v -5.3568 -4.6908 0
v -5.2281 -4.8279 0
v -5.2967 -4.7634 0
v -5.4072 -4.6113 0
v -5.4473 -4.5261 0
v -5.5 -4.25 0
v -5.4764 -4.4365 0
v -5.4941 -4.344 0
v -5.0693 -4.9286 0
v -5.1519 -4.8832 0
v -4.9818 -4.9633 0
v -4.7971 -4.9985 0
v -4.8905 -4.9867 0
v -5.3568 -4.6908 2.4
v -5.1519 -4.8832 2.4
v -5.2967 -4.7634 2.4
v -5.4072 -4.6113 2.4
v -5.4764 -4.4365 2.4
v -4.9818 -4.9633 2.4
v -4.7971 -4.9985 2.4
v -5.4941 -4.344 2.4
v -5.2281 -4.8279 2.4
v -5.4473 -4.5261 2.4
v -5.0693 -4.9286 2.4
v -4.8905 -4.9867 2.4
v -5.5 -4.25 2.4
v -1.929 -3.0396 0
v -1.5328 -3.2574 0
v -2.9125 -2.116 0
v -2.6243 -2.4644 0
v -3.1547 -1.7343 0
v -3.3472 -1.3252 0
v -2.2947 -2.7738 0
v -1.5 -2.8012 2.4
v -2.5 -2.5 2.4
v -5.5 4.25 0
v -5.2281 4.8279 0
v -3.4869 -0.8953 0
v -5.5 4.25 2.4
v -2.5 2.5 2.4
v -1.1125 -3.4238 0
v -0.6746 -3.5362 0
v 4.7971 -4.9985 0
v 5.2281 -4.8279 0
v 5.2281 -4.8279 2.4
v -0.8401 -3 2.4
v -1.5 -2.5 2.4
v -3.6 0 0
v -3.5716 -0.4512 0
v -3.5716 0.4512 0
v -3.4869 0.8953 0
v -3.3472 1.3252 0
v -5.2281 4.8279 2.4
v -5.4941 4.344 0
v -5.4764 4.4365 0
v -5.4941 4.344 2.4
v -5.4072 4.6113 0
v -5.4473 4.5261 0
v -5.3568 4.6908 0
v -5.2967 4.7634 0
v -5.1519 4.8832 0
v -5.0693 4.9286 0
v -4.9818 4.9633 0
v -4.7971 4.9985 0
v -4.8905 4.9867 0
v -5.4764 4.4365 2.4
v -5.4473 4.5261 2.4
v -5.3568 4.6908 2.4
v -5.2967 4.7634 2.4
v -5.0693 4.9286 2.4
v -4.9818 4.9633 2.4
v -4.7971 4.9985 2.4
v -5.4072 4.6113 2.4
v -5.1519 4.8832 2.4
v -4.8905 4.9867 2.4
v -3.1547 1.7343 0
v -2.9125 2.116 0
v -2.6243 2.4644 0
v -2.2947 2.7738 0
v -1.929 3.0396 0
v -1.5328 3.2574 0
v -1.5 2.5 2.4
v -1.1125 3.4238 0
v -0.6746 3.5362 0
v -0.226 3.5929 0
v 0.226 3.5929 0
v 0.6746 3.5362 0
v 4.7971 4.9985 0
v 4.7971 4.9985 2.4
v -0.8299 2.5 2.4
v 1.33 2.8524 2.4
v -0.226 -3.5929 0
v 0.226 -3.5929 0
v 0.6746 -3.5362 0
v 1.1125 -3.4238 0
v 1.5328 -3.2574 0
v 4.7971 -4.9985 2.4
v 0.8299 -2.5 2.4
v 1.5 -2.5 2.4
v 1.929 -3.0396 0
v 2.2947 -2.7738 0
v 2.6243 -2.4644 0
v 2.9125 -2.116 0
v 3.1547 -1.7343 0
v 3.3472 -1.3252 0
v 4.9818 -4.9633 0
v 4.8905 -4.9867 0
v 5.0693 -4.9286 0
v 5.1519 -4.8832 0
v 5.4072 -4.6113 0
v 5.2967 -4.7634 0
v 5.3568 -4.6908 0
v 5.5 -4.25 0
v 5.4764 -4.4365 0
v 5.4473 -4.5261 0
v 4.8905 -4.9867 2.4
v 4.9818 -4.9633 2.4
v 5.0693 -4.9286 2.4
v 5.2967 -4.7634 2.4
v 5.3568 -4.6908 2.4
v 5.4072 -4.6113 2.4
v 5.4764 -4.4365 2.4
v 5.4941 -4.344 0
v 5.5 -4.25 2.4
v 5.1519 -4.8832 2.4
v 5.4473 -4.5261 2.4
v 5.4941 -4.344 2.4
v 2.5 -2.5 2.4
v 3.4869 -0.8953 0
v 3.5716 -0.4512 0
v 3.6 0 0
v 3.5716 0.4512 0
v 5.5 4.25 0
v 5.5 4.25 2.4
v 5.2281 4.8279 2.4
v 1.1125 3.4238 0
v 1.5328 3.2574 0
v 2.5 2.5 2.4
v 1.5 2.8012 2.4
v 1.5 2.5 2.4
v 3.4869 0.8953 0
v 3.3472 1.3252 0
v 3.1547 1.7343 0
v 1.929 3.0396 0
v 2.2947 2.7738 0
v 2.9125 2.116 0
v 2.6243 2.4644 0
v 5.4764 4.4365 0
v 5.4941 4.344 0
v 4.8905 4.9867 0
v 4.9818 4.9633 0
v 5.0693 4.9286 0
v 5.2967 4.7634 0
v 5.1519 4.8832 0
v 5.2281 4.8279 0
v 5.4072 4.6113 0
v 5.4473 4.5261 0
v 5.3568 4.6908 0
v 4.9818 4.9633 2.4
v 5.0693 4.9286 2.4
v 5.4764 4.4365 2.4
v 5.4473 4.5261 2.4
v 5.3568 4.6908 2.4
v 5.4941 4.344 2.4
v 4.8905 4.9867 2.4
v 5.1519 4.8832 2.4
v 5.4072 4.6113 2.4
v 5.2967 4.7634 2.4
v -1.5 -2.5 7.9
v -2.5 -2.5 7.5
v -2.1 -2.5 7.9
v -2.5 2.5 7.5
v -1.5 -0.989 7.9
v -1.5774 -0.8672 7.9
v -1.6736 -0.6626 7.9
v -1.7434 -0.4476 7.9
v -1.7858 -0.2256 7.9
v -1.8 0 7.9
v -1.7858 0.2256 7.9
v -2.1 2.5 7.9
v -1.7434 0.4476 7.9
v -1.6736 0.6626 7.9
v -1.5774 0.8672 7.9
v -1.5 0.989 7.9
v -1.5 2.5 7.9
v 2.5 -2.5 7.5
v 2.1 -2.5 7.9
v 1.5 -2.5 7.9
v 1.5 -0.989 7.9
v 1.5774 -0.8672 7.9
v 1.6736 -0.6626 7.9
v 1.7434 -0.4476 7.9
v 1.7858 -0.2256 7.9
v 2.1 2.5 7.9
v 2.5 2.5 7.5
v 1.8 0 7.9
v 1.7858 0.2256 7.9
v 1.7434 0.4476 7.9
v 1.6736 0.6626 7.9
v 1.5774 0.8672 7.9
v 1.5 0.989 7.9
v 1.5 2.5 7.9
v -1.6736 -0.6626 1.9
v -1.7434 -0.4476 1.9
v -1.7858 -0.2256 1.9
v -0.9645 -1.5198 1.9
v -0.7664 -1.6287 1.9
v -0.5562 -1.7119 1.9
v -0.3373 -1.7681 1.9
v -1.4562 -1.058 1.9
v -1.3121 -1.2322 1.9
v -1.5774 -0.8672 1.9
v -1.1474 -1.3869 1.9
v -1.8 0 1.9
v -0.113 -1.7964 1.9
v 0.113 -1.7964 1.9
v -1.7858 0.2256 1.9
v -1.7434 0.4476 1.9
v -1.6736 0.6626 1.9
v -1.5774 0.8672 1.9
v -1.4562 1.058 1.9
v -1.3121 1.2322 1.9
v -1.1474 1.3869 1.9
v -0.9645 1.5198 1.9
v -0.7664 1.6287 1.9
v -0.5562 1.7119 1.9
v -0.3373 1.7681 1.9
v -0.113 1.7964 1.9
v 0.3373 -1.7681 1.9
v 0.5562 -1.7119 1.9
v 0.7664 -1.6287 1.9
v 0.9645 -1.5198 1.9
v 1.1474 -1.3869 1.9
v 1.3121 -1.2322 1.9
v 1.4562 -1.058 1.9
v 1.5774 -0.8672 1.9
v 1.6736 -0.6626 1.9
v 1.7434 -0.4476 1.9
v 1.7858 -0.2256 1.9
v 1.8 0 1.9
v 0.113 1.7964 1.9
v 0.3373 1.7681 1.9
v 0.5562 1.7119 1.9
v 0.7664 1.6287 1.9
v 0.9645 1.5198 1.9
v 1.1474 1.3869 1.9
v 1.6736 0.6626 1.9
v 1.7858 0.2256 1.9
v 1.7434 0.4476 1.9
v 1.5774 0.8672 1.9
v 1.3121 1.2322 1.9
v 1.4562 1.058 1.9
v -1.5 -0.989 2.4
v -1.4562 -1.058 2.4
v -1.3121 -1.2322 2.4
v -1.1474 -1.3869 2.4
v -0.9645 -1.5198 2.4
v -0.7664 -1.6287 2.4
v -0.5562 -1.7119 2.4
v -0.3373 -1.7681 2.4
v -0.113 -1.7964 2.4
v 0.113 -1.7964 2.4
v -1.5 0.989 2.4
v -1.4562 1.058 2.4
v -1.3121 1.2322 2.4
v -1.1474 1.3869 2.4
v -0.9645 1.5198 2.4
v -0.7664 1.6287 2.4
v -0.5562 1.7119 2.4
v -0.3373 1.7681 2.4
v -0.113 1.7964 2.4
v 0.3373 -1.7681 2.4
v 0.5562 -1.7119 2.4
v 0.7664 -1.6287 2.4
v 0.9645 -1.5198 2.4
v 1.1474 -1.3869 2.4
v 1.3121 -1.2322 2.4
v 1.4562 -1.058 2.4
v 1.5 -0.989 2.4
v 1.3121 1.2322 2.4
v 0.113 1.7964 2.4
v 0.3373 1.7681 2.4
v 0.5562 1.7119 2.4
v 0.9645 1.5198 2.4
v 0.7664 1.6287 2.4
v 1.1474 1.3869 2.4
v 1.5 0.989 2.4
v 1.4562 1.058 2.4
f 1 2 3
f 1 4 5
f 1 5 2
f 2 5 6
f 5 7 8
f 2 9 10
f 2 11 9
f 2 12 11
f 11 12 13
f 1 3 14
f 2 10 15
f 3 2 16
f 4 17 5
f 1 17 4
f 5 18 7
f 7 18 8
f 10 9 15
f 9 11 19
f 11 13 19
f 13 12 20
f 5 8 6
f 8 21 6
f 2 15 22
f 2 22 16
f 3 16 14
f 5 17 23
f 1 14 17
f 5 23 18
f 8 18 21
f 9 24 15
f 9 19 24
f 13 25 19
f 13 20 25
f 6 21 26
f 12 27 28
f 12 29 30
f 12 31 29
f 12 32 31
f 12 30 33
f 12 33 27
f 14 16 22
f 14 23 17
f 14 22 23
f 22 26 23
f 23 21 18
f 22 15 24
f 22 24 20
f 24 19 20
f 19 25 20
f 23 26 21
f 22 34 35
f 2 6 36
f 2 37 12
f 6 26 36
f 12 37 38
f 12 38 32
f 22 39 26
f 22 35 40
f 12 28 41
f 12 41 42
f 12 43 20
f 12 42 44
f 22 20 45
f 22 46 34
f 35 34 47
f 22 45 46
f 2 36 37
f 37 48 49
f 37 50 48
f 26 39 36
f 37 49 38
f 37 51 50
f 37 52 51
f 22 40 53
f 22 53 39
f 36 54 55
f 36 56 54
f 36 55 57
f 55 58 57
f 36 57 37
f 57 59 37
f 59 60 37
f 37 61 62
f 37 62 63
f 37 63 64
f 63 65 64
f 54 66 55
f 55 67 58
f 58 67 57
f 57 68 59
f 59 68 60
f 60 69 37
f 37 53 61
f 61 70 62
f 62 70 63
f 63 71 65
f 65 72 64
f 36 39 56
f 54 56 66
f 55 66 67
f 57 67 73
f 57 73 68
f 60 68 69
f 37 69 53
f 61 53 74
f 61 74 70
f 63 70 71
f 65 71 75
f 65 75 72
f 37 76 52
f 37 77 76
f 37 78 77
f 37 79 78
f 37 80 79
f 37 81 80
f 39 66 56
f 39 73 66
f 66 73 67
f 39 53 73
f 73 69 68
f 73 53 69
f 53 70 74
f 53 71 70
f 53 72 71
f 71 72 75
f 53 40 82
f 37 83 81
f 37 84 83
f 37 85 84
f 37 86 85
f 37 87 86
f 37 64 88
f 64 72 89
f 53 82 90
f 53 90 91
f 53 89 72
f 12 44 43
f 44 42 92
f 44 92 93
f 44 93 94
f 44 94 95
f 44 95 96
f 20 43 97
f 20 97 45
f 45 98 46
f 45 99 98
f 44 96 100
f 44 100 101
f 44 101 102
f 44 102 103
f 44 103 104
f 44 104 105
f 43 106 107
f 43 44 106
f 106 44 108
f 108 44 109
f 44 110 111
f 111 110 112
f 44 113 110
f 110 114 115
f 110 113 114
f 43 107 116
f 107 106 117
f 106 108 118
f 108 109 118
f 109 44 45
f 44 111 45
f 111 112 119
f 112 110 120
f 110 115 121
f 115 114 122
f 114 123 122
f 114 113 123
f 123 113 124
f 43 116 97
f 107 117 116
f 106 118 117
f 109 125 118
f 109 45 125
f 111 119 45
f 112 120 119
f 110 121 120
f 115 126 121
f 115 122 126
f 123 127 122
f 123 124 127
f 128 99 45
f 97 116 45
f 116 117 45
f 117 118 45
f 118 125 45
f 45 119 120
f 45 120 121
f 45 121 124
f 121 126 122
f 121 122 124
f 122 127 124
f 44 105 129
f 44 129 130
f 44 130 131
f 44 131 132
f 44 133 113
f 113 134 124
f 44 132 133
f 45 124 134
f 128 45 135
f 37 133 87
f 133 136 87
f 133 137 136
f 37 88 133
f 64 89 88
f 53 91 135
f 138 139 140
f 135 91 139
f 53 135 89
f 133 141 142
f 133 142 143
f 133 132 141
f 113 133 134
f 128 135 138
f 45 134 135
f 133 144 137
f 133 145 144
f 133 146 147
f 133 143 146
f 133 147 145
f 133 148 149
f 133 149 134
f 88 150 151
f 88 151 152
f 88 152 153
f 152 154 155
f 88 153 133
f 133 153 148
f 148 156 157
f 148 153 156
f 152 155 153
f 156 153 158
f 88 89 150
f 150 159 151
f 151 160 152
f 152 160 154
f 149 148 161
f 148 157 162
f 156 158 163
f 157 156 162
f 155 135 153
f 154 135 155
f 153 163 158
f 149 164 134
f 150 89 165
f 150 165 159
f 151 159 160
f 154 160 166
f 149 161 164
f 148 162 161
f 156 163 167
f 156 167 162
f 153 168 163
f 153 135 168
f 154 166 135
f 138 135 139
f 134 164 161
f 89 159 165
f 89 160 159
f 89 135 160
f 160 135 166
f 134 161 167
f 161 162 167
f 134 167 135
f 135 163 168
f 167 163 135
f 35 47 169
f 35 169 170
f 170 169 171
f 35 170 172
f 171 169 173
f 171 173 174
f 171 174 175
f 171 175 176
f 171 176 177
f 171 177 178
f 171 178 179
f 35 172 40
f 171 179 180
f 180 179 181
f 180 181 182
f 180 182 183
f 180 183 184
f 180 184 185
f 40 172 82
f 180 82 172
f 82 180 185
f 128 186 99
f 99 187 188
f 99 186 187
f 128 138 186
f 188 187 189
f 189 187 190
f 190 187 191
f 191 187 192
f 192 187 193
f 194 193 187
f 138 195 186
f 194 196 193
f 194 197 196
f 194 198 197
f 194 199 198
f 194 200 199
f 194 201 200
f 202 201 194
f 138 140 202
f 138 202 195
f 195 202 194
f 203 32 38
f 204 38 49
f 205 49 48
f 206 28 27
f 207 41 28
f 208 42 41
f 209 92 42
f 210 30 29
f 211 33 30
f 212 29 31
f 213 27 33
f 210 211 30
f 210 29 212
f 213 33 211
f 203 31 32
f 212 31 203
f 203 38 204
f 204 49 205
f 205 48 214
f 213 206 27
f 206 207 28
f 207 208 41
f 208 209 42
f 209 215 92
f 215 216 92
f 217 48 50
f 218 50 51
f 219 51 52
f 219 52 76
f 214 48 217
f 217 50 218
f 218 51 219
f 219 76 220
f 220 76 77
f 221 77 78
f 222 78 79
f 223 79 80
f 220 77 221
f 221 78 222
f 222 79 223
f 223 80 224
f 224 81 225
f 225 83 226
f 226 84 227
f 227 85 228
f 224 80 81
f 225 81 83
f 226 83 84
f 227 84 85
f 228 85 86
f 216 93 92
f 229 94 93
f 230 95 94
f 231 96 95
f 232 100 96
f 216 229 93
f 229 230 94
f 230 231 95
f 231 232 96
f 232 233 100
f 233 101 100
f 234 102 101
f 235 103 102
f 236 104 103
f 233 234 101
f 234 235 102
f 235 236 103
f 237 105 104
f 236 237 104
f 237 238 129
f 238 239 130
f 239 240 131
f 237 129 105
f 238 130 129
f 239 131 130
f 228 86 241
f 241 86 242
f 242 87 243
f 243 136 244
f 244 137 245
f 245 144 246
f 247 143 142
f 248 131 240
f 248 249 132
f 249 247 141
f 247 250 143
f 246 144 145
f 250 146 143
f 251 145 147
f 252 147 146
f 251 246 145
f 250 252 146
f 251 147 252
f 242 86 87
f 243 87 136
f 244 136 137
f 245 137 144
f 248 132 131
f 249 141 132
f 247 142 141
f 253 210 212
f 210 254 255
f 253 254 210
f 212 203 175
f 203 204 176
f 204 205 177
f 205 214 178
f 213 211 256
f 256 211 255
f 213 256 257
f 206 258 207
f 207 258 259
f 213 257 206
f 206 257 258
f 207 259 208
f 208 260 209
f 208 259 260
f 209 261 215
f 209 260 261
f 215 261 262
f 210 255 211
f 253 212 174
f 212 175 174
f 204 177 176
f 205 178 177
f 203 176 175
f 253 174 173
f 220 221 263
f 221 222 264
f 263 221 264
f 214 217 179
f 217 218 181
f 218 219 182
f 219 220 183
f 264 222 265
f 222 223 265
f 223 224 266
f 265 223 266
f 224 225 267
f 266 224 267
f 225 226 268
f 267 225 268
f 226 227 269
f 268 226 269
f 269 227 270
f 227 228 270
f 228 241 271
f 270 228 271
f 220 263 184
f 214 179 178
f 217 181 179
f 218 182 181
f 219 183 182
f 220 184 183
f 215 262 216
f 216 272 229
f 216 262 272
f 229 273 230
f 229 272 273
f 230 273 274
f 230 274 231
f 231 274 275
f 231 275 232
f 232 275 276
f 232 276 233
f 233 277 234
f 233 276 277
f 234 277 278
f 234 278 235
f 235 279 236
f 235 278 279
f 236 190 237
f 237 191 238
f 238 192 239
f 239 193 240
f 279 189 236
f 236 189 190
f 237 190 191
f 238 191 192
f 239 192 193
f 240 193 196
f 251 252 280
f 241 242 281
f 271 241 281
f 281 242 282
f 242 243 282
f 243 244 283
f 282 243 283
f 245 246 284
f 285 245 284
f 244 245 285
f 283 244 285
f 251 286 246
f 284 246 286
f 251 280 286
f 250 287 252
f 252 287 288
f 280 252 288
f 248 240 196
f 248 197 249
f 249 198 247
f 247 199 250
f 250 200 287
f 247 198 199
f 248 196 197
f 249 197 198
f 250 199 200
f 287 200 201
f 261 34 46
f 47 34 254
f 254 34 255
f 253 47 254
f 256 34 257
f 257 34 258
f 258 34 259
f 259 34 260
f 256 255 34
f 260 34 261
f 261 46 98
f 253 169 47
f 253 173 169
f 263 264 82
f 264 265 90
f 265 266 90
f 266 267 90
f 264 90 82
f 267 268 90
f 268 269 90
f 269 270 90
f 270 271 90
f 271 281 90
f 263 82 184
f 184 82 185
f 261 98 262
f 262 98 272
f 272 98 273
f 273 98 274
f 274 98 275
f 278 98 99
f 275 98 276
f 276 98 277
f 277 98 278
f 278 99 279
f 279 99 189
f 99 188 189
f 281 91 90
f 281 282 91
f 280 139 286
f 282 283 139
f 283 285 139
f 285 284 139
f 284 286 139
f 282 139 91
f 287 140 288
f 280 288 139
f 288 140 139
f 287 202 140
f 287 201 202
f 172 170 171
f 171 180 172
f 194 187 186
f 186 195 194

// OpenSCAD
$fn = 50;

difference() {
	union() {
		translate(v = [0, 0, 0]) {
			rotate(a = [0, 0, 0]) {
				difference() {
					union() {
						translate(v = [0, 0, 0]) {
							rotate(a = [0, 0, 0]) {
								difference() {
									union() {
										hull() {
											translate(v = [-4.75, 4.25, 0]) {
												cylinder(h = 2.4, r = 0.75);
											}
											translate(v = [4.75, 4.25, 0]) {
												cylinder(h = 2.4, r = 0.75);
											}
											translate(v = [-4.75, -4.25, 0]) {
												cylinder(h = 2.4, r = 0.75);
											}
											translate(v = [4.75, -4.25, 0]) {
												cylinder(h = 2.4, r = 0.75);
											}
										}
										translate(v = [-2.5, -2.5, 2.35]) {
											cube(size = [5.0, 5.0, 5.55]);
										}
									}
									union() {
										translate(v = [0, 0, 0]) {
											rotate(a = [0, 180, 0]) {
												difference() {
													union() {
														translate(v = [0, 0, -20.0]) {
															cylinder(h = 20.0, r = 1.5);
														}
														translate(v = [0, 0, -1.9]) {
															cylinder(h = 1.9, r1 = 1.8, r2 = 3.6);
														}
														cylinder(h = 250, r = 3.6);
														translate(v = [0, 0, -20.0]) {
															cylinder(h = 20.0, r = 1.8);
														}
														translate(v = [0, 0, -20.0]) {
															cylinder(h = 20.0, r = 1.5);
														}
													}
													union();
												}
											}
										}
										translate(v = [-1.5, -3.0, 2.4]) {
											cube(size = [3.0, 6.0, 5.6]);
										}
										translate(v = [0, 2.6, 0]) {
											rotate(a = [90, 0, 0]) {
												linear_extrude(height = 5.2) {
													polygon(points = [[-2.7, 7.300000000000001], [-1.9, 8.1], [-2.7, 8.1]]);
												}
											}
										}
										translate(v = [0, 2.6, 0]) {
											rotate(a = [90, 0, 0]) {
												linear_extrude(height = 5.2) {
													polygon(points = [[2.7, 7.300000000000001], [1.9, 8.1], [2.7, 8.1]]);
												}
											}
										}
									}
								}
							}
						}
					}
					union();
				}
			}
		}
	}
	union();
}
